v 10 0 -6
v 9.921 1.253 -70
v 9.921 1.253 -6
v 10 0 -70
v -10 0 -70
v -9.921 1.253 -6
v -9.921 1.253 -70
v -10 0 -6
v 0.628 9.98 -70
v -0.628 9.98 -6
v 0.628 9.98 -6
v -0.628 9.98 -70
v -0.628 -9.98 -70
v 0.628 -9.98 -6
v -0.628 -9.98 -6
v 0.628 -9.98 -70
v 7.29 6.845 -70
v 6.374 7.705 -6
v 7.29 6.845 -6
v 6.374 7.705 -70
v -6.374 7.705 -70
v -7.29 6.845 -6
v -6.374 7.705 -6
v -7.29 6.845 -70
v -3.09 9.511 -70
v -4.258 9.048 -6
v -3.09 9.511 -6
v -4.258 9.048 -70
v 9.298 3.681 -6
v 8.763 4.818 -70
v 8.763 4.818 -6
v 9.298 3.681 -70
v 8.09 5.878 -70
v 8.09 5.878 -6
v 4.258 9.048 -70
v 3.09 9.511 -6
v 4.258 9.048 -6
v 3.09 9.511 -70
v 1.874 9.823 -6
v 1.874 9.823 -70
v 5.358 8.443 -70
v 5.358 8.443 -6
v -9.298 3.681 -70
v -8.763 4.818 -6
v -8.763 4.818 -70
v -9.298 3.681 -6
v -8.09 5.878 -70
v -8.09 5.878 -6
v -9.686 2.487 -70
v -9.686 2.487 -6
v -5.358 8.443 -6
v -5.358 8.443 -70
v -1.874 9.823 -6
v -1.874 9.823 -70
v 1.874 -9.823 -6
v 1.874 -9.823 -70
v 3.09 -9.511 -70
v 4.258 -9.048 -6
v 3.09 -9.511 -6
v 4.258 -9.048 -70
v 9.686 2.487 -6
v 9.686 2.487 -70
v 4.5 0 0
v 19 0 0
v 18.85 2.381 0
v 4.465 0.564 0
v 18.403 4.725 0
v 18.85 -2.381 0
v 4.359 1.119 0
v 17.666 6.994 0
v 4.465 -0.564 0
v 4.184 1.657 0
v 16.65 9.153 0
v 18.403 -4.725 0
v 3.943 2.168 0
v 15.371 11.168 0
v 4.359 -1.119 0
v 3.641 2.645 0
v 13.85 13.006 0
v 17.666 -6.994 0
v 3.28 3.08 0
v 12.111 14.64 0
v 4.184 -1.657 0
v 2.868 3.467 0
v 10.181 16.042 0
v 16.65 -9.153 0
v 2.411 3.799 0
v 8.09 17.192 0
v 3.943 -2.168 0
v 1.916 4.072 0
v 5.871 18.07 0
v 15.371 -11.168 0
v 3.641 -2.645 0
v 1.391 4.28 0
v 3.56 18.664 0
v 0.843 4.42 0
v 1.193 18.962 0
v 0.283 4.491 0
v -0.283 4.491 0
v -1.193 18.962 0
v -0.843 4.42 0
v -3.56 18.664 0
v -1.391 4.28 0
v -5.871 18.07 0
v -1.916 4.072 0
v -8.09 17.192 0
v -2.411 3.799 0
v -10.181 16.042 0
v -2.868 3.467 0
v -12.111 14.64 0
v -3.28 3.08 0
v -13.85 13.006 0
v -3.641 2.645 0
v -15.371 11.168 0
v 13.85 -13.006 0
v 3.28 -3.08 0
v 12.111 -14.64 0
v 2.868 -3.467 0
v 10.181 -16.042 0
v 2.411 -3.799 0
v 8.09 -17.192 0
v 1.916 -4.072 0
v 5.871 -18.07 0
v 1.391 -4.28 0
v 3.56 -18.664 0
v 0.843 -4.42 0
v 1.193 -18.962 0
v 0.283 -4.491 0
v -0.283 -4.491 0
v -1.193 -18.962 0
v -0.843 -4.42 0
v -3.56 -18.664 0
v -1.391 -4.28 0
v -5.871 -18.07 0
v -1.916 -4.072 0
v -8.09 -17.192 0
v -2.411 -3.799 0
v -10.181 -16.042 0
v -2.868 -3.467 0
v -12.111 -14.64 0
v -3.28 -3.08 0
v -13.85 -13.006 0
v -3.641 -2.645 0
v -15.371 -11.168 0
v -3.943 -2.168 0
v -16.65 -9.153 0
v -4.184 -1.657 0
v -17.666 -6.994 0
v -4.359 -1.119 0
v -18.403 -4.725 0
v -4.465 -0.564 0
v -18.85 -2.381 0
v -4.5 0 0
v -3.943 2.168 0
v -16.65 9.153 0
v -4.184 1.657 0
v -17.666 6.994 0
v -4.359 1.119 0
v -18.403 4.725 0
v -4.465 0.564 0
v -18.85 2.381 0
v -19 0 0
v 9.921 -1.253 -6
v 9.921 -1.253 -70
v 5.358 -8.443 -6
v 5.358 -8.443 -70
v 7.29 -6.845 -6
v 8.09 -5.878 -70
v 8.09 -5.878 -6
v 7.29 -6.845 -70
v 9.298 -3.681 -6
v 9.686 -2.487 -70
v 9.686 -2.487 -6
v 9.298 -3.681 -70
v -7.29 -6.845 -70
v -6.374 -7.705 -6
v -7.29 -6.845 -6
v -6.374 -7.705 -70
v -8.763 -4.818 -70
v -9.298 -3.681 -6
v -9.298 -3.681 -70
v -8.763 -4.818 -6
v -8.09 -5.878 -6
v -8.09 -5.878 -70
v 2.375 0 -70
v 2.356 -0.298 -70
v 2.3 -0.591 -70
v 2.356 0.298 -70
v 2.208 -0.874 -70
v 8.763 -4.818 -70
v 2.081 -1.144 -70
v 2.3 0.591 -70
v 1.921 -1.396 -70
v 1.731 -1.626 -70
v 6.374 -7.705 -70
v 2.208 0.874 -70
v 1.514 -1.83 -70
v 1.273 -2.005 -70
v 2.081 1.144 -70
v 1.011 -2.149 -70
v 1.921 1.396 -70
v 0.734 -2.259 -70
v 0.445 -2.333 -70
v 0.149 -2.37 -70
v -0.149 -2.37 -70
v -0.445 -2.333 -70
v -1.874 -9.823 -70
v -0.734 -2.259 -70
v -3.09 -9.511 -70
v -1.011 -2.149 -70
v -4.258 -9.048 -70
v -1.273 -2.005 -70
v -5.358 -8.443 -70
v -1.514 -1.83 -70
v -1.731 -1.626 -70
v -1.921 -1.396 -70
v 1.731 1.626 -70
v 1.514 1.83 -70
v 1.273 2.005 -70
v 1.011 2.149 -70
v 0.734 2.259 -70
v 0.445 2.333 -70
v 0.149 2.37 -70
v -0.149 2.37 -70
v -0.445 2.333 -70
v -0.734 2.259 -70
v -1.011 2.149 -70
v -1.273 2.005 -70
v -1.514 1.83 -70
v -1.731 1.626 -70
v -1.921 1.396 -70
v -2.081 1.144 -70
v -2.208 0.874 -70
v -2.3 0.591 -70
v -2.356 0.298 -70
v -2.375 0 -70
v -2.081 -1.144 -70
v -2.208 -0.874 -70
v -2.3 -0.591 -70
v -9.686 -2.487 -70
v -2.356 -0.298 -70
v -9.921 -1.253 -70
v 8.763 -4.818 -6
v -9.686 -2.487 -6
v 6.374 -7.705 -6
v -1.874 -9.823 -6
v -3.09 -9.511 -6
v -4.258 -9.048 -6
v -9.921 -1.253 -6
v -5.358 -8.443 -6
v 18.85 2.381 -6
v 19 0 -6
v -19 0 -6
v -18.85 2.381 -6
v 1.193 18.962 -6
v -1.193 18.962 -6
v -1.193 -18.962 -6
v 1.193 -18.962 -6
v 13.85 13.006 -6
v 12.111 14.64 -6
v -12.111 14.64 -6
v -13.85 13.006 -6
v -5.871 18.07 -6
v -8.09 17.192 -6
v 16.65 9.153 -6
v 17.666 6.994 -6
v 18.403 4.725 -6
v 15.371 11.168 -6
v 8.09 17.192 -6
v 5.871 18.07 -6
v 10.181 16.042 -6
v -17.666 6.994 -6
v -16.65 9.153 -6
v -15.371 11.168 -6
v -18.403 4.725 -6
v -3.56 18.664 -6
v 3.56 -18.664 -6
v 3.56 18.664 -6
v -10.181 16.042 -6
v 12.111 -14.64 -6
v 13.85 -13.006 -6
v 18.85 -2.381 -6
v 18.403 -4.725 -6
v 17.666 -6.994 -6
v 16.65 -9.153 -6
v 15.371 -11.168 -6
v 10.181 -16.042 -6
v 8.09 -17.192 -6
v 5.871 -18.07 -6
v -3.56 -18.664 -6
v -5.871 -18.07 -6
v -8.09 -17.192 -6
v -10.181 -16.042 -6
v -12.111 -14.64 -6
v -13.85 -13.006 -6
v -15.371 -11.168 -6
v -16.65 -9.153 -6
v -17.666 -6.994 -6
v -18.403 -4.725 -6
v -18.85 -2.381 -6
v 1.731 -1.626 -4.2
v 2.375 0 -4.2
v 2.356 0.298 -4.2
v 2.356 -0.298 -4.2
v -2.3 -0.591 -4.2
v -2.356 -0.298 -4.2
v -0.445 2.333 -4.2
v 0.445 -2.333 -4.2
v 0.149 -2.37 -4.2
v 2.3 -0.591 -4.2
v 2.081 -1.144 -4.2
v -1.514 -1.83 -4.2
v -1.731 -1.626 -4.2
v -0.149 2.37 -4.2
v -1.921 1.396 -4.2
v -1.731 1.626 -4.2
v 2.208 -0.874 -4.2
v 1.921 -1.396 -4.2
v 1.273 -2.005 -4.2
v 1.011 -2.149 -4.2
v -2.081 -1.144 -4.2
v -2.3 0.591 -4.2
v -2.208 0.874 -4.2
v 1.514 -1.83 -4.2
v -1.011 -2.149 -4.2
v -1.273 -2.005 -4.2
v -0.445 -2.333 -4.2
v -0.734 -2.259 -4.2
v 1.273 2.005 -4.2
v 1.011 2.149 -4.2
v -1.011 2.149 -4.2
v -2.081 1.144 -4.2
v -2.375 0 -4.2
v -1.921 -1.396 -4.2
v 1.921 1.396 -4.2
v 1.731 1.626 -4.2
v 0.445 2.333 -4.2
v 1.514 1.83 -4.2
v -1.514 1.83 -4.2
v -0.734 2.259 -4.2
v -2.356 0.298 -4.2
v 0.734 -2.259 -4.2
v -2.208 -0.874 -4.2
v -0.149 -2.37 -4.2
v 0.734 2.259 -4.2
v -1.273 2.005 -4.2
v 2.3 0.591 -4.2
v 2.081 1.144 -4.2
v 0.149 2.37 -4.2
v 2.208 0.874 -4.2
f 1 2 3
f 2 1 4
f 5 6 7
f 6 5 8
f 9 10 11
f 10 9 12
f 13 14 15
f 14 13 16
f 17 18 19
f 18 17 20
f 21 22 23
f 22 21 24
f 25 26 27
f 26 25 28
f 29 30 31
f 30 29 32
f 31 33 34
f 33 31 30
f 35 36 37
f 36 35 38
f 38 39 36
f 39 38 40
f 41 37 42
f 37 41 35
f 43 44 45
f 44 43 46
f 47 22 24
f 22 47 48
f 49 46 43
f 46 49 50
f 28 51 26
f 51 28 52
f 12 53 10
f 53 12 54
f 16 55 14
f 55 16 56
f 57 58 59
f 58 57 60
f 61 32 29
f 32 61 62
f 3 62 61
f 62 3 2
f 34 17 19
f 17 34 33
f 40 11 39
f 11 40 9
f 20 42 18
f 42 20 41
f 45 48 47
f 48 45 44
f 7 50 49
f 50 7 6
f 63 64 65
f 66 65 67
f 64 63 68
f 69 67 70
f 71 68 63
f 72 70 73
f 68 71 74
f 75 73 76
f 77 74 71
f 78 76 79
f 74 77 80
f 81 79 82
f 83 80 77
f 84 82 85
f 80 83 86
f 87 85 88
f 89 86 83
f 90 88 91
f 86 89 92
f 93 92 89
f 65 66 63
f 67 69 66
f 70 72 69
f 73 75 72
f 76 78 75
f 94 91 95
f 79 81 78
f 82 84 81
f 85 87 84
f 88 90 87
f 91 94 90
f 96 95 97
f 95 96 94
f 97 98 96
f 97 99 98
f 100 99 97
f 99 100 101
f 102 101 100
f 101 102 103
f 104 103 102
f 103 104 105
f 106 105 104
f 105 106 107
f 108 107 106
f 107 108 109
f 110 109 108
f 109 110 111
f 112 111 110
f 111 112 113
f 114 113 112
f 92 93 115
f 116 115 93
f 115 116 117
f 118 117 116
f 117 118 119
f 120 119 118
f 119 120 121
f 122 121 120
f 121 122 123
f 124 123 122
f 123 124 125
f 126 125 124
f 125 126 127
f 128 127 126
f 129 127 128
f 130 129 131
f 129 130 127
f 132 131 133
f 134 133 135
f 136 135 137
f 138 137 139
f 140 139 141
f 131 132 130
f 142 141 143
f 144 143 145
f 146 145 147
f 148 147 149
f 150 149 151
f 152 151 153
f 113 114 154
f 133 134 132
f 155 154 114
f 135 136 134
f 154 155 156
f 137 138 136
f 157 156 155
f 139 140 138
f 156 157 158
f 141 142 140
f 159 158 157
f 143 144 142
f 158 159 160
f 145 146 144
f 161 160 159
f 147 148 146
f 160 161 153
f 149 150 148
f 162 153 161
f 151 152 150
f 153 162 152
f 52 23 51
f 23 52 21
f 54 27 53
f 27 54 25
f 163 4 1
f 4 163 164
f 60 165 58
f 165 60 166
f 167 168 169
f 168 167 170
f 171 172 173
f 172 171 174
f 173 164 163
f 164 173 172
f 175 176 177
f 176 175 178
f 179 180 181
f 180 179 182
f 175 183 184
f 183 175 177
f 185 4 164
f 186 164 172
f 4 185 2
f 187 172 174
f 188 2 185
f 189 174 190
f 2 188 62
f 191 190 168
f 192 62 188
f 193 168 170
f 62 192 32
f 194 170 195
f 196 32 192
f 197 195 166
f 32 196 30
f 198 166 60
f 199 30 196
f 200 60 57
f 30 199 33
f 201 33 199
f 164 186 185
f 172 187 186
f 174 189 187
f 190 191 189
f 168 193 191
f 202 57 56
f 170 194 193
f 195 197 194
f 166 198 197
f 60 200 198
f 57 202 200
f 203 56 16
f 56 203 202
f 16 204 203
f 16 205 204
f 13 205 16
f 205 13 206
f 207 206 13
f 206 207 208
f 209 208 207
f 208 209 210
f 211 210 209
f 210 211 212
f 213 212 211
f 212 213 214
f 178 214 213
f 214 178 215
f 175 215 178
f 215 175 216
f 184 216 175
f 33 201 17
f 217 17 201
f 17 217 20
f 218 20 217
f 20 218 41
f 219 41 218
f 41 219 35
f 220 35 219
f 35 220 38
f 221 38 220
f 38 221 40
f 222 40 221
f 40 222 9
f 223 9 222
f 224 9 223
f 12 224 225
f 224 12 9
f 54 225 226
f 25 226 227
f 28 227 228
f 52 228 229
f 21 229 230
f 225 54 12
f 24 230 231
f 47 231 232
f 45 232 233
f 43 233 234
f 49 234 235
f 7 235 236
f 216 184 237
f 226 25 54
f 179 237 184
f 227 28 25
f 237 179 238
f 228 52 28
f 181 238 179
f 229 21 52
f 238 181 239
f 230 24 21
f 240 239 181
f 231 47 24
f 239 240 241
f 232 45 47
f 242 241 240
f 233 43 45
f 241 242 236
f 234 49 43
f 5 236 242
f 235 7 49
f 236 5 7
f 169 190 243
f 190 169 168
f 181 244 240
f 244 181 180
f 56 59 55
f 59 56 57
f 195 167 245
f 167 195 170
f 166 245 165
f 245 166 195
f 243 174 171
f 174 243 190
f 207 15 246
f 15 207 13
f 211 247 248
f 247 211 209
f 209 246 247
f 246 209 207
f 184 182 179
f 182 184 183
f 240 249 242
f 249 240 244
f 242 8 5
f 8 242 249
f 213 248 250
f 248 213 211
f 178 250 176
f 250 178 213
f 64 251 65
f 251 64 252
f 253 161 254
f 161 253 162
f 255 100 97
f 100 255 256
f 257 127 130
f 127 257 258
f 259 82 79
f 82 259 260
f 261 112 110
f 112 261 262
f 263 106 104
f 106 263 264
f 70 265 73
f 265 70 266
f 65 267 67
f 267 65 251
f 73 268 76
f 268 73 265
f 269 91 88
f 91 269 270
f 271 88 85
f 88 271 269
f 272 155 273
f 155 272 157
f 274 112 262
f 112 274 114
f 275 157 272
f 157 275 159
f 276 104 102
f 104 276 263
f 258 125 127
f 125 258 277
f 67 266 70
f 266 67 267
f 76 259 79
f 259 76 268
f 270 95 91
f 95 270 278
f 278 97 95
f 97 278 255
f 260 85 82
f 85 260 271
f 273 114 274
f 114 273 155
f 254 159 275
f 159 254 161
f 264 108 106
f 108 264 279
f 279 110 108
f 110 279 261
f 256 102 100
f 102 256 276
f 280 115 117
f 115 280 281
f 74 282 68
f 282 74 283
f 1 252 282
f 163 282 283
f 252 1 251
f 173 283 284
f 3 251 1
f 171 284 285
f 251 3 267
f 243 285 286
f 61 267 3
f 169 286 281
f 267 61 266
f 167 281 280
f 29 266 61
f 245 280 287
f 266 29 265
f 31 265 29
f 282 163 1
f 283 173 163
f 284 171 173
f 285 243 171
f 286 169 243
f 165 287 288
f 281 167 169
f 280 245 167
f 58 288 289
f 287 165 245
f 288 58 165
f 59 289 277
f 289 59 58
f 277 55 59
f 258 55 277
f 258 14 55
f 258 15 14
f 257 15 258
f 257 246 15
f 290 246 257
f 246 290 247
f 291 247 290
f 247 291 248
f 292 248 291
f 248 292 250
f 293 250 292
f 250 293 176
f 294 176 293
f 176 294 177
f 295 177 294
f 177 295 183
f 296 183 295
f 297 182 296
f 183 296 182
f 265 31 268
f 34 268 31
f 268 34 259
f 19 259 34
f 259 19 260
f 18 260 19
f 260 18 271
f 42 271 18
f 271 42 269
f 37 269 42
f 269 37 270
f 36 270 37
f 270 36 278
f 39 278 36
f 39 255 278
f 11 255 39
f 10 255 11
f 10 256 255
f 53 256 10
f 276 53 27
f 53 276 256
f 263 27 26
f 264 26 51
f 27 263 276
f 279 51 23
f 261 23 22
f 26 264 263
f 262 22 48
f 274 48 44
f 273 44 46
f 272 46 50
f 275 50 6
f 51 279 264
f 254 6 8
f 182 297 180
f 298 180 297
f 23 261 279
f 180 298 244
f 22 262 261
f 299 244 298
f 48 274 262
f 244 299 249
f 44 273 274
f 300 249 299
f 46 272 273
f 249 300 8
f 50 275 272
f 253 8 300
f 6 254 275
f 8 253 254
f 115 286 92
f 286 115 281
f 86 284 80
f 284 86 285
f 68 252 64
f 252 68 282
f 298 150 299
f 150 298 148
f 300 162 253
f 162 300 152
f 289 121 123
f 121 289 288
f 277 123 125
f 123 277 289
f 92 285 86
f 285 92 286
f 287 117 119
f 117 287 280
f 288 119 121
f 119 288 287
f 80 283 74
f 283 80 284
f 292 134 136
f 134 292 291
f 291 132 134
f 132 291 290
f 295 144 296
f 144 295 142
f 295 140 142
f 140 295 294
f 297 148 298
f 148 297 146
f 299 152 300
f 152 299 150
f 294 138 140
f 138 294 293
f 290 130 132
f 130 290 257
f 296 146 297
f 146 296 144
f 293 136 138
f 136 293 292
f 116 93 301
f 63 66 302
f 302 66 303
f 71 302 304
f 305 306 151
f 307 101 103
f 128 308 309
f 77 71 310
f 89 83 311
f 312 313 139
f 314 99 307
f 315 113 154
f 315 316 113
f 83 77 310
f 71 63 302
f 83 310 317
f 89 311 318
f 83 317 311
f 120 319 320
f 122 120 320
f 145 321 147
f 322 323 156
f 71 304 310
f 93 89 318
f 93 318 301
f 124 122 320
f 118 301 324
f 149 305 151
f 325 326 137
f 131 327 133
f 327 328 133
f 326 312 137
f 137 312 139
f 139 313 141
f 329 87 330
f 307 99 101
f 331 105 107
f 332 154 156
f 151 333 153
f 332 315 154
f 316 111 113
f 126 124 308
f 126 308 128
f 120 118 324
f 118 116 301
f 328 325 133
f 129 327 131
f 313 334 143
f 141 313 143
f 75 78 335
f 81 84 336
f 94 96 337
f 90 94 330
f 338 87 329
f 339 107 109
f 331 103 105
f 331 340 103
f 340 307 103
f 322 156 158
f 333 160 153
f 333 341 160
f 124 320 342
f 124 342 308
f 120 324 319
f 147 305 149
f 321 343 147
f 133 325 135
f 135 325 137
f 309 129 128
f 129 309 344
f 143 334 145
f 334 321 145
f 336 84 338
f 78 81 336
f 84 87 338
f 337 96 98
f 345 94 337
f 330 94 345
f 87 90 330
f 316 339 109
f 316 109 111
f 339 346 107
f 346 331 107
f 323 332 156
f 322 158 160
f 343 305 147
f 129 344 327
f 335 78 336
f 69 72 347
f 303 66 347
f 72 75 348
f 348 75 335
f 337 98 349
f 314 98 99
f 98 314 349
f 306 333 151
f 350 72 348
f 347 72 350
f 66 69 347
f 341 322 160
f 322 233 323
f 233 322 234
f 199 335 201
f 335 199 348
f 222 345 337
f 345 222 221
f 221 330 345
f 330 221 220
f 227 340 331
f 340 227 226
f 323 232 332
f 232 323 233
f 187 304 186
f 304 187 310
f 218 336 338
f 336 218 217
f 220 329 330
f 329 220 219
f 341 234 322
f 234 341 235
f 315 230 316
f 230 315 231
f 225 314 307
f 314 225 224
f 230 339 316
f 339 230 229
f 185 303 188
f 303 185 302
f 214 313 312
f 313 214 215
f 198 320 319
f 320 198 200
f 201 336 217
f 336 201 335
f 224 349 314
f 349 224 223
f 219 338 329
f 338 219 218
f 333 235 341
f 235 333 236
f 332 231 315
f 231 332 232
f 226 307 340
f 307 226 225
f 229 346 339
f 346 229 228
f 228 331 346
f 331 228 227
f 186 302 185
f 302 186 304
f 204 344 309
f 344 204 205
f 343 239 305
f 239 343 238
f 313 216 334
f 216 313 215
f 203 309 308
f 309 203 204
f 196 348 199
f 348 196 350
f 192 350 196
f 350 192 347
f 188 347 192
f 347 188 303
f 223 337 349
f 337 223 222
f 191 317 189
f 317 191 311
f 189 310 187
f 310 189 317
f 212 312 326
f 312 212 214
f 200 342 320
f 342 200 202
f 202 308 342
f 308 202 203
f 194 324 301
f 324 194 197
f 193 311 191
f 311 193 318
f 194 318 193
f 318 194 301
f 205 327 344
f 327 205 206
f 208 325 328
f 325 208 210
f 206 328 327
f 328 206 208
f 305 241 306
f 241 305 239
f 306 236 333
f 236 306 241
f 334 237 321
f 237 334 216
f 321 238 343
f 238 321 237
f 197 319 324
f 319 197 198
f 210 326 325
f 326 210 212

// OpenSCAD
$fn = 50;


difference() {
	union() {
		translate(v = [0, 0, -70.0000000000]) {
			cylinder(h = 70, r = 10.0000000000);
		}
		translate(v = [0, 0, -6.0000000000]) {
			cylinder(h = 6, r = 19.0000000000);
		}
	}
	union() {
		translate(v = [0, 0, 0]) {
			rotate(a = [0, 0, 0]) {
				difference() {
					union() {
						#translate(v = [0, 0, -70.0000000000]) {
							cylinder(h = 70, r = 2.2500000000);
						}
						#translate(v = [0, 0, -4.2000000000]) {
							cylinder(h = 4.2000000000, r = 10.0000000000, r1 = 2.3750000000, r2 = 4.5000000000);
						}
						#translate(v = [0, 0, -70.0000000000]) {
							cylinder(h = 70, r = 2.3750000000);
						}
						#translate(v = [0, 0, -70.0000000000]) {
							cylinder(h = 70, r = 2.2500000000);
						}
					}
					union();
				}
			}
		}
	}
}
